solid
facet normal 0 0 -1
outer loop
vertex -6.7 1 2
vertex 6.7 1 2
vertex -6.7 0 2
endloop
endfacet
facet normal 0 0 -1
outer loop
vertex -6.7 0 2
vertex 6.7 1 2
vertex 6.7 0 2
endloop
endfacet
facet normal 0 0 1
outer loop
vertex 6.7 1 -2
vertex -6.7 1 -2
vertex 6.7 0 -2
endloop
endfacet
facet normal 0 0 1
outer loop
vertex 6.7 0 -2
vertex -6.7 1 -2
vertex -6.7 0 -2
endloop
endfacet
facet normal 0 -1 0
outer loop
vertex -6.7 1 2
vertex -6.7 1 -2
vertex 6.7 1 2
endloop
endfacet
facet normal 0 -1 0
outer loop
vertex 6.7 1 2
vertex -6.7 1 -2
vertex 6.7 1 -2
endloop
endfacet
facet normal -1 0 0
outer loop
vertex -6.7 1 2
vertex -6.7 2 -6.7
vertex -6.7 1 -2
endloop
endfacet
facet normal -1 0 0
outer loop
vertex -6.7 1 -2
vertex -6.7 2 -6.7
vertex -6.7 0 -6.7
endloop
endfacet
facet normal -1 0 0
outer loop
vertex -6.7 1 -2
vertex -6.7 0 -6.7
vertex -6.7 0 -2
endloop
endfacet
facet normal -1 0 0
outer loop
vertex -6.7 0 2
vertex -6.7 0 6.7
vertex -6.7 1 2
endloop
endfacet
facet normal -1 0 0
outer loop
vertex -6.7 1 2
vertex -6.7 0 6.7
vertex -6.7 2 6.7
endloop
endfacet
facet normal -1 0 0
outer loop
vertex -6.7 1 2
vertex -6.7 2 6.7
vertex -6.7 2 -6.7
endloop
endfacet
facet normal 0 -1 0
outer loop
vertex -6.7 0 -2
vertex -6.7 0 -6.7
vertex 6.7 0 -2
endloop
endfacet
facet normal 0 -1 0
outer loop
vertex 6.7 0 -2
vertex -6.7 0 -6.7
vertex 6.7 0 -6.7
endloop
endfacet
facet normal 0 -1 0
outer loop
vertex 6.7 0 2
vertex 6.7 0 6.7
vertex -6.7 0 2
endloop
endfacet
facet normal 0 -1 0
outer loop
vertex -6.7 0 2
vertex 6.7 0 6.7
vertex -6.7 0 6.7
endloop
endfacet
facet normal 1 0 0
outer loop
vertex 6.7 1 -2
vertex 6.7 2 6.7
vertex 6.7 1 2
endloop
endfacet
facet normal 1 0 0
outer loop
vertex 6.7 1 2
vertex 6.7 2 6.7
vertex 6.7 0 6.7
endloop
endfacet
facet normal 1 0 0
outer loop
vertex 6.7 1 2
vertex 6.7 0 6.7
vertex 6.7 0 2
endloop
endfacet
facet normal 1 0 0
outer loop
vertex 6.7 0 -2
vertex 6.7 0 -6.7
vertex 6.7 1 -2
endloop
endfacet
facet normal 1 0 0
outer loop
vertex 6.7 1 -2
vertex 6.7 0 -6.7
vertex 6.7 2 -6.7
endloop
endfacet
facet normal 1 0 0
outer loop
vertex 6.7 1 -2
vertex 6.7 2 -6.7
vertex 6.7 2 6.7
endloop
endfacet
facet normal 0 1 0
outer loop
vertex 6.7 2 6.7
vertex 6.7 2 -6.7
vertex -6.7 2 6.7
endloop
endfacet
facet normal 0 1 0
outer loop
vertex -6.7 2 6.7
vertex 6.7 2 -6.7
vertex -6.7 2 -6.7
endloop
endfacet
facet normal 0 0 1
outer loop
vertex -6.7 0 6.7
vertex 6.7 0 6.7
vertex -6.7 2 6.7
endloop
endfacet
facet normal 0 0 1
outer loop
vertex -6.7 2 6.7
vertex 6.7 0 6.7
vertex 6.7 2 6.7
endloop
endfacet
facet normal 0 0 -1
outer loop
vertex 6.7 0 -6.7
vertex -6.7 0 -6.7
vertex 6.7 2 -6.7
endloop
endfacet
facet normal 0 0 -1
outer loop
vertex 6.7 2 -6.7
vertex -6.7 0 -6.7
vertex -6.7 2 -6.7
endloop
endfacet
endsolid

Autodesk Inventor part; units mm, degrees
ref_plane "YZ Plane" through (0, 0, 0) normal (1, 0, 0) x (0, 1, 0)
ref_plane "XZ Plane" through (0, 0, 0) normal (0, 1, 0) x (-1, 0, 0)
ref_plane "XY Plane" through (0, 0, 0) normal (0, 0, 1) x (1, 0, 0)
sketch "Sketch1" plane through (0, 0, 0) normal (0, 1, 0) x (-1, 0, 0)
  line L0 (6.7, 6.7) -> (-6.7, 6.7)
  line L1 (-6.7, 6.7) -> (-6.7, -6.7)
  line L2 (-6.7, -6.7) -> (6.7, -6.7)
  line L3 (6.7, -6.7) -> (6.7, 6.7)
  point P0 (0, 0)
  dimension "d0" = 13.4
  dimension "d1" = 13.4
  dimension "d2" = 6.7
  dimension "d3" = 6.7
extrude "Extrusion1" add sketch "Sketch1" along normal blind 2
sketch "Sketch2" plane through (0, 0, 0) normal (0, -1, 0) x (1, 0, 0)
  line L0 (6.7, 6.7) -> (6.7, -6.7) projected
  line L1 (6.7, 6.7) -> (6.7, -6.7)
  line L2 (-6.7, -6.7) -> (-6.7, 6.7) projected
  line L3 (6.7, -6.7) -> (-6.7, -6.7)
  line L4 (-6.7, -6.7) -> (-6.7, 6.7)
  line L5 (-6.7, 6.7) -> (6.7, 6.7)
  line L6 (4.7, 4.7) -> (-4.7, 4.7)
  line L7 (-4.7, 4.7) -> (-4.7, -4.7)
  line L8 (-4.7, -4.7) -> (4.7, -4.7)
  line L9 (4.7, -4.7) -> (4.7, 4.7)
  line L10 (4.7, -2) -> (6.7, -2)
  line L11 (6.7, 2) -> (4.7, 2)
  point P0 (0, 0)
  point P1 (0, 4.7)
  point P2 (5.7, 2)
  point P3 (4.7, 0)
  dimension "d6" = 2
  dimension "d8" = 2
  dimension "d9" = 2
  dimension "d10" = 2
  dimension "d11" = 4
  dimension "d12" = 2
extrude "Extrusion2" cut sketch "Sketch2" against normal blind 2 contours L0 L10 L9 L11
sketch "Sketch3" plane through (0, 0, 0) normal (0, -1, 0) x (1, 0, 0)
  line L0 (-6.7, -6.7) -> (-6.7, 6.7) projected
  line L1 (-6.7, 2) -> (-4.7, 2)
  line L2 (-4.7, 2) -> (-4.7, -2)
  line L3 (-4.7, -2) -> (-6.7, -2)
  point P0 (0, 0)
  point P1 (-6.7, 0)
  dimension "d15" = 2
  dimension "d16" = 2
  dimension "d17" = 4
extrude "Extrusion3" cut sketch "Sketch3" against normal blind 1
sketch "Sketch4" plane through (4.7, 0, 2) normal (1, 0, 0) x (0, 0, -1)
  line L0 (0, 2) -> (4, 2) projected
  line L1 (4, 0) -> (4, 1) projected
  line L2 (0, 2) -> (4, 2)
  line L3 (4, 2) -> (4, 1)
  line L4 (4, 1) -> (0, 1)
  line L5 (0, 1) -> (0, 2)
  point P0 (2, 0)
extrude "Extrusion4" add sketch "Sketch4" along normal blind 2
sketch "Sketch5" plane through (0, 0, 0) normal (0, -1, 0) x (1, 0, 0)
  line L0 (6.7, 6.7) -> (6.7, 2) projected
  line L1 (-6.7, 2) -> (-6.7, 6.7) projected
  line L2 (6.7, 2.15) -> (-6.7, 2.15)
  line L3 (-6.7, 2.15) -> (-6.7, -2.15)
  line L4 (-6.7, -2.15) -> (6.7, -2.15)
  line L5 (6.7, -2.15) -> (6.7, 2.15)
  line L6 (-4.7, -2) -> (-6.7, -2) projected
  point P0 (0, 0)
  point P1 (-6.7, 2.15)
  dimension "d22" = 4.3
  dimension "d23" = 0.15
extrude "Extrusion5" cut sketch "Sketch5" against normal blind 1
sketch "Sketch6" plane through (0, 1, 0) normal (0, -1, 0) x (1, 0, 0)
  line L0 (6.7, 6.7) -> (6.7, -6.7) projected
  line L1 (-6.7, 2) -> (6.7, 2)
  line L2 (6.7, 2) -> (6.7, -2)
  line L3 (6.7, -2) -> (-6.7, -2)
  line L4 (-6.7, -2) -> (-6.7, 2)
  line L5 (-6.7, 2.15) -> (6.7, 2.15) projected
  line L6 (6.7, -2.15) -> (-6.7, -2.15) projected
  line L7 (6.7, -2) -> (6.7, -2.15)
  line L8 (6.7, -2.15) -> (-6.7, -2.15)
  line L9 (-6.7, -2) -> (-6.7, -2.15)
  line L10 (-6.7, 2) -> (-6.7, 2.15)
  line L11 (-6.7, 2.15) -> (6.7, 2.15)
  line L12 (6.7, 2.15) -> (6.7, 2)
  point P0 (0, 0)
  dimension "d26" = 0.15
  dimension "d27" = 0.15
  dimension "d28" = 13.4
extrude "Extrusion6" add sketch "Sketch6" along normal blind 1 contours L0 L1 L10 L5 | L0 L6 L9 L3
properties part number "Camera_Housing_Top"
